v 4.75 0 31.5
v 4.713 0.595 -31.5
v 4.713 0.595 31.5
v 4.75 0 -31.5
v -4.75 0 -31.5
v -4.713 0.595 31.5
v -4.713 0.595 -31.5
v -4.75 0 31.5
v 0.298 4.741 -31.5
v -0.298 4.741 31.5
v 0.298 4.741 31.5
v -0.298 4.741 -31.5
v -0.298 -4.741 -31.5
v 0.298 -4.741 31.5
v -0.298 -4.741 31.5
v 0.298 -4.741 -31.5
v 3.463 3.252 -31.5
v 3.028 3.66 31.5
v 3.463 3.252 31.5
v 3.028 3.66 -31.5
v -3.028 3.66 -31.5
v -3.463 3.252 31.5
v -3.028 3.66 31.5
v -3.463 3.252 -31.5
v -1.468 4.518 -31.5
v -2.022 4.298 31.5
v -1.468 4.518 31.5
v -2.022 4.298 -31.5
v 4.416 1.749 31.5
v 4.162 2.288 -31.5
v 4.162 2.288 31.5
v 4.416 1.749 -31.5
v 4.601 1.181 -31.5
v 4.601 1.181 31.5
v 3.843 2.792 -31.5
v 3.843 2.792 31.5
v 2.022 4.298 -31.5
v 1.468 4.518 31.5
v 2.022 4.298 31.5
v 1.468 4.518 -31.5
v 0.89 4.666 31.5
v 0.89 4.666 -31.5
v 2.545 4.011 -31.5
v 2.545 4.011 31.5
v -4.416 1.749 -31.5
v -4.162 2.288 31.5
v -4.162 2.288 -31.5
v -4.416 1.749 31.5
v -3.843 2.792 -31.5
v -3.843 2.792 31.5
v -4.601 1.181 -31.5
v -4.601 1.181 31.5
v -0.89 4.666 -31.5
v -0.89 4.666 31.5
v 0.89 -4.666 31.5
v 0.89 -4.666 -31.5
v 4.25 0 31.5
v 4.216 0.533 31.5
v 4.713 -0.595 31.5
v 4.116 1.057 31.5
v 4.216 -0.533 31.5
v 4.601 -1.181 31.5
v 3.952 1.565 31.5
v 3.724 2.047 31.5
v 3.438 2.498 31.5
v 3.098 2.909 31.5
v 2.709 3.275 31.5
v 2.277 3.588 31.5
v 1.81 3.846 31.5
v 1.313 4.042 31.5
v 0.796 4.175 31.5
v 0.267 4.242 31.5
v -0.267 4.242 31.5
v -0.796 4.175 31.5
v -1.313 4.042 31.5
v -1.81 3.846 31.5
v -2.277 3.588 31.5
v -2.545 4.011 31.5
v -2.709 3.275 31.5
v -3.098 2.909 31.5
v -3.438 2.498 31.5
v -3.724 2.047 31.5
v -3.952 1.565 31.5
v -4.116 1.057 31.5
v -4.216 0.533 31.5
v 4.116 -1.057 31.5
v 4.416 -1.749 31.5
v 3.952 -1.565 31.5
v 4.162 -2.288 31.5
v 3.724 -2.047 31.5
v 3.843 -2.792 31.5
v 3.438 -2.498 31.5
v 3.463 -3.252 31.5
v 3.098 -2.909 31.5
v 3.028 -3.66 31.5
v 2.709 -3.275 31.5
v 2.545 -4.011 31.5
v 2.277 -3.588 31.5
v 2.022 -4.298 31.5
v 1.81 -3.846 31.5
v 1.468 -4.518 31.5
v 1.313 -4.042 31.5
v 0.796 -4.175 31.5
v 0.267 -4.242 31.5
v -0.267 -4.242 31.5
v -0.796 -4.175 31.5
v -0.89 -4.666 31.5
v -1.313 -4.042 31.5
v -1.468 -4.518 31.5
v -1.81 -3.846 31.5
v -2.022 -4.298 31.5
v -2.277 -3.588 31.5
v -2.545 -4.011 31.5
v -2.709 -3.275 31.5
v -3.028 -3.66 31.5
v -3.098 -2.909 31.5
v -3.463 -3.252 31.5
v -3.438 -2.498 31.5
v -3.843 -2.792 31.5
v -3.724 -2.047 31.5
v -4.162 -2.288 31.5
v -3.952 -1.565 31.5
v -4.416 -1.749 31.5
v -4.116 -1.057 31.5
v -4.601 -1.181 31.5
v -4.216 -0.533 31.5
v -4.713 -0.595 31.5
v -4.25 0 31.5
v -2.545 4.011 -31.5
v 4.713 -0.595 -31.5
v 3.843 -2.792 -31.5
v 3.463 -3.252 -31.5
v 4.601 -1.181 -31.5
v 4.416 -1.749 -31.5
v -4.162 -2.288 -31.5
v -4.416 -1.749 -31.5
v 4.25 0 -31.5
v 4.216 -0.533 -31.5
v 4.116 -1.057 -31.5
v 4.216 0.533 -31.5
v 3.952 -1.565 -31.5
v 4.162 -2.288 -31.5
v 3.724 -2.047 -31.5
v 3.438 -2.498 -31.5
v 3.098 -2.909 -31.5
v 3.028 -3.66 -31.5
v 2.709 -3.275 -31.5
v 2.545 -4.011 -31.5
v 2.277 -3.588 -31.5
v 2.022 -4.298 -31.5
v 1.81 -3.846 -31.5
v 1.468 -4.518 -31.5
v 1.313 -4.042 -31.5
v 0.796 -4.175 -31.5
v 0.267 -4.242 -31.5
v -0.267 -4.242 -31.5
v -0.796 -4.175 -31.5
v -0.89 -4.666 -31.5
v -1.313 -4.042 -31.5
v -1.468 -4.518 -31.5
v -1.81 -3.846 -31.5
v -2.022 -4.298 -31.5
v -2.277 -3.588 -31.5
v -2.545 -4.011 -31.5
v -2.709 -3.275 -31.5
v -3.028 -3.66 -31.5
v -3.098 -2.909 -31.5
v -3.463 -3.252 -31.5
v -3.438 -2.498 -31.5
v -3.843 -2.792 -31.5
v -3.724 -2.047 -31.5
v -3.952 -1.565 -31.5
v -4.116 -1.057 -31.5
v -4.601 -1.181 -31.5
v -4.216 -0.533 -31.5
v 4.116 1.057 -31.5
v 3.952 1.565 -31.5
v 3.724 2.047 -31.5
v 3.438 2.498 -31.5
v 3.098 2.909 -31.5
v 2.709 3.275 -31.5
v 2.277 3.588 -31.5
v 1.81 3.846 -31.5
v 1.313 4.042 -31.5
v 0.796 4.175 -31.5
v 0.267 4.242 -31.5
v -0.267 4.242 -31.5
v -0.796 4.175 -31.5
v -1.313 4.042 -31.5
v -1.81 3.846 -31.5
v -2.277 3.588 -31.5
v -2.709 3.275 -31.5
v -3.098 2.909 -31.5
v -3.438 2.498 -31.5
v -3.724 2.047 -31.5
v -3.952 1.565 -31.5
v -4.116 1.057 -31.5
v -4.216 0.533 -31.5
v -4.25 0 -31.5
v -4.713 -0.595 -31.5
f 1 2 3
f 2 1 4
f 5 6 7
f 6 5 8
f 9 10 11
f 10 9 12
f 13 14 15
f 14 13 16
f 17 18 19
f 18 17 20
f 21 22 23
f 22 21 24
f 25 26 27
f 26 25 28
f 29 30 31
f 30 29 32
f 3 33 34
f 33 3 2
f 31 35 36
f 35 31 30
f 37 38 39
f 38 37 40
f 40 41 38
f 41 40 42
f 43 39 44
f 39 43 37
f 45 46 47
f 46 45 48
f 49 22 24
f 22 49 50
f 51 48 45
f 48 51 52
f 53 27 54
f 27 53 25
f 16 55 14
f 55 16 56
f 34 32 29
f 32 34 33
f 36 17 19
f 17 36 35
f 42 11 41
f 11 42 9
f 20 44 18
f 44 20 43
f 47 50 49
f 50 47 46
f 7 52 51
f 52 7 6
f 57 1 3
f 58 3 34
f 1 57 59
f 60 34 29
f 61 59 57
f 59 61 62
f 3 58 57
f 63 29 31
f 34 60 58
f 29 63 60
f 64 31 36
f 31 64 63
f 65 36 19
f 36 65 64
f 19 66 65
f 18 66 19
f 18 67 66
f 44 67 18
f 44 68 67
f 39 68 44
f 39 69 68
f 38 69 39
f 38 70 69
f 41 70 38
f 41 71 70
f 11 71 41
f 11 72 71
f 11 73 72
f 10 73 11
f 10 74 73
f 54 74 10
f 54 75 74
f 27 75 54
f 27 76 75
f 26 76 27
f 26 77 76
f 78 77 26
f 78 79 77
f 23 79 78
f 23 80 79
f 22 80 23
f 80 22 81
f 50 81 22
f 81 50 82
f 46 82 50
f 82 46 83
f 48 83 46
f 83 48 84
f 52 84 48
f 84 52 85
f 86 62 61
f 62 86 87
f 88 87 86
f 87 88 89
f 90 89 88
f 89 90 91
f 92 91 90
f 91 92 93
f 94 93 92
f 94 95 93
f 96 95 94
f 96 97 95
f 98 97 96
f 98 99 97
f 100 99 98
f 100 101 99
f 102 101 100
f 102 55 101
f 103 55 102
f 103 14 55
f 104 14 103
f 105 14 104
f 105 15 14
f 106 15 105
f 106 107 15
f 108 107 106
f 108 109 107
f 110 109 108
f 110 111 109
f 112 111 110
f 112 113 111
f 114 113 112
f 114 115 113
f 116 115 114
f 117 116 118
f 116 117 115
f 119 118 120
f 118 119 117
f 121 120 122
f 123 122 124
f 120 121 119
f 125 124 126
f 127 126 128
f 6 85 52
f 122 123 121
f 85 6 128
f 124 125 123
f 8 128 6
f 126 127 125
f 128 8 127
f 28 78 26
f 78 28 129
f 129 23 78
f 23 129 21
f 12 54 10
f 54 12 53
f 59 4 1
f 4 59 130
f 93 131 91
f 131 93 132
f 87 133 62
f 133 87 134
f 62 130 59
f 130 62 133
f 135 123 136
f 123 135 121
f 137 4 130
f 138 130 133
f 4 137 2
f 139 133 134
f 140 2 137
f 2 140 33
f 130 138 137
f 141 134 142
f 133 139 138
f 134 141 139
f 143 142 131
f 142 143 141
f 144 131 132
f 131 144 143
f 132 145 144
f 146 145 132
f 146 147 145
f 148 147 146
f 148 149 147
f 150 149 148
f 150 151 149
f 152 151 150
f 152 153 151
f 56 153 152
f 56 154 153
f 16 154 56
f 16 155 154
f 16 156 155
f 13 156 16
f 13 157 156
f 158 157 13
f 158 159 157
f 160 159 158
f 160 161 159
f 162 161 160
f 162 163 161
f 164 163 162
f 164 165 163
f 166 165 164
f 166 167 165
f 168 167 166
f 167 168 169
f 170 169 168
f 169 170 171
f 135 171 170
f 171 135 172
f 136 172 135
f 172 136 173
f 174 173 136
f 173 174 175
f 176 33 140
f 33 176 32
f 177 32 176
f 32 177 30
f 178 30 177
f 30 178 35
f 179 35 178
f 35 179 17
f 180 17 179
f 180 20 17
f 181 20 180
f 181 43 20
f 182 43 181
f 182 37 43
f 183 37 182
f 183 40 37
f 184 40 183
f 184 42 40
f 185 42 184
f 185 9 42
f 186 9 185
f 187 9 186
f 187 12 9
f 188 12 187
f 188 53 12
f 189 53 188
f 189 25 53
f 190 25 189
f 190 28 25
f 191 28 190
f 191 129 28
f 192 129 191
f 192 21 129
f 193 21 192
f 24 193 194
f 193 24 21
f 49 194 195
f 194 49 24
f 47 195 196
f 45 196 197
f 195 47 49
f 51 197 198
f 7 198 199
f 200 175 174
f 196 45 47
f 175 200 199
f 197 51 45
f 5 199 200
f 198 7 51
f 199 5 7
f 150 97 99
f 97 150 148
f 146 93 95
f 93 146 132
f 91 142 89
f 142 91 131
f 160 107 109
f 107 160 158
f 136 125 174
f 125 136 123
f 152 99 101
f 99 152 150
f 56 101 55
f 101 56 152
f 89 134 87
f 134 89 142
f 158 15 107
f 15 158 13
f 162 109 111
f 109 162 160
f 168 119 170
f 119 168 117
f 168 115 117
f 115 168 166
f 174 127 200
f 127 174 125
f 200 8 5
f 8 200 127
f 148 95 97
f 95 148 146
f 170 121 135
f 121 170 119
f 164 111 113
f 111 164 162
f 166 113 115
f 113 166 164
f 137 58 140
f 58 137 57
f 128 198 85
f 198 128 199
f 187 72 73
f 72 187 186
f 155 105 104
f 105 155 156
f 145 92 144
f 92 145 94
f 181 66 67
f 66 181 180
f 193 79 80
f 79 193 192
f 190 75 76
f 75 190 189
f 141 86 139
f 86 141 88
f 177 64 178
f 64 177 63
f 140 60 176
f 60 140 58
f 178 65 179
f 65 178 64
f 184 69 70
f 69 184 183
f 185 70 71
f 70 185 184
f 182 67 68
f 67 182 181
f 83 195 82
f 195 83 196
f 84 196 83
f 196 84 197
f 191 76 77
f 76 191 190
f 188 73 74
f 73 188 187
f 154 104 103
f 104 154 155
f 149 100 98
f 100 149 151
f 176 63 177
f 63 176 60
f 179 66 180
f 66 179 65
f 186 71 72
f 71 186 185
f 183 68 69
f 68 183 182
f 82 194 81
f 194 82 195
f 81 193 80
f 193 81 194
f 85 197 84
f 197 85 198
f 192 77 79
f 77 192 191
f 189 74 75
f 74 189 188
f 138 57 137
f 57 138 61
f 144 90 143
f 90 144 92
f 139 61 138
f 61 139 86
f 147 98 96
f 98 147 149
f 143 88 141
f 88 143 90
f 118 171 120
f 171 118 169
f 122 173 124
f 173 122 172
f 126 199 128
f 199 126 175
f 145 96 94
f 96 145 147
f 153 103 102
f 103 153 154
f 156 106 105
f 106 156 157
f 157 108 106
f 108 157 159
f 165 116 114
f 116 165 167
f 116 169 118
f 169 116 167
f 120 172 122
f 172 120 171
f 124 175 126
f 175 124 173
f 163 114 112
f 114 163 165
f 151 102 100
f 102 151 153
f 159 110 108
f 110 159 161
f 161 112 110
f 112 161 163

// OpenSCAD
$fn = 50;


difference() {
	union() {
		translate(v = [0, 0, -31.5000000000]) {
			cylinder(h = 63, r = 4.7500000000);
		}
	}
	union() {
		translate(v = [0, 0, -100.0000000000]) {
			cylinder(h = 200, r = 4.2500000000);
		}
	}
}
